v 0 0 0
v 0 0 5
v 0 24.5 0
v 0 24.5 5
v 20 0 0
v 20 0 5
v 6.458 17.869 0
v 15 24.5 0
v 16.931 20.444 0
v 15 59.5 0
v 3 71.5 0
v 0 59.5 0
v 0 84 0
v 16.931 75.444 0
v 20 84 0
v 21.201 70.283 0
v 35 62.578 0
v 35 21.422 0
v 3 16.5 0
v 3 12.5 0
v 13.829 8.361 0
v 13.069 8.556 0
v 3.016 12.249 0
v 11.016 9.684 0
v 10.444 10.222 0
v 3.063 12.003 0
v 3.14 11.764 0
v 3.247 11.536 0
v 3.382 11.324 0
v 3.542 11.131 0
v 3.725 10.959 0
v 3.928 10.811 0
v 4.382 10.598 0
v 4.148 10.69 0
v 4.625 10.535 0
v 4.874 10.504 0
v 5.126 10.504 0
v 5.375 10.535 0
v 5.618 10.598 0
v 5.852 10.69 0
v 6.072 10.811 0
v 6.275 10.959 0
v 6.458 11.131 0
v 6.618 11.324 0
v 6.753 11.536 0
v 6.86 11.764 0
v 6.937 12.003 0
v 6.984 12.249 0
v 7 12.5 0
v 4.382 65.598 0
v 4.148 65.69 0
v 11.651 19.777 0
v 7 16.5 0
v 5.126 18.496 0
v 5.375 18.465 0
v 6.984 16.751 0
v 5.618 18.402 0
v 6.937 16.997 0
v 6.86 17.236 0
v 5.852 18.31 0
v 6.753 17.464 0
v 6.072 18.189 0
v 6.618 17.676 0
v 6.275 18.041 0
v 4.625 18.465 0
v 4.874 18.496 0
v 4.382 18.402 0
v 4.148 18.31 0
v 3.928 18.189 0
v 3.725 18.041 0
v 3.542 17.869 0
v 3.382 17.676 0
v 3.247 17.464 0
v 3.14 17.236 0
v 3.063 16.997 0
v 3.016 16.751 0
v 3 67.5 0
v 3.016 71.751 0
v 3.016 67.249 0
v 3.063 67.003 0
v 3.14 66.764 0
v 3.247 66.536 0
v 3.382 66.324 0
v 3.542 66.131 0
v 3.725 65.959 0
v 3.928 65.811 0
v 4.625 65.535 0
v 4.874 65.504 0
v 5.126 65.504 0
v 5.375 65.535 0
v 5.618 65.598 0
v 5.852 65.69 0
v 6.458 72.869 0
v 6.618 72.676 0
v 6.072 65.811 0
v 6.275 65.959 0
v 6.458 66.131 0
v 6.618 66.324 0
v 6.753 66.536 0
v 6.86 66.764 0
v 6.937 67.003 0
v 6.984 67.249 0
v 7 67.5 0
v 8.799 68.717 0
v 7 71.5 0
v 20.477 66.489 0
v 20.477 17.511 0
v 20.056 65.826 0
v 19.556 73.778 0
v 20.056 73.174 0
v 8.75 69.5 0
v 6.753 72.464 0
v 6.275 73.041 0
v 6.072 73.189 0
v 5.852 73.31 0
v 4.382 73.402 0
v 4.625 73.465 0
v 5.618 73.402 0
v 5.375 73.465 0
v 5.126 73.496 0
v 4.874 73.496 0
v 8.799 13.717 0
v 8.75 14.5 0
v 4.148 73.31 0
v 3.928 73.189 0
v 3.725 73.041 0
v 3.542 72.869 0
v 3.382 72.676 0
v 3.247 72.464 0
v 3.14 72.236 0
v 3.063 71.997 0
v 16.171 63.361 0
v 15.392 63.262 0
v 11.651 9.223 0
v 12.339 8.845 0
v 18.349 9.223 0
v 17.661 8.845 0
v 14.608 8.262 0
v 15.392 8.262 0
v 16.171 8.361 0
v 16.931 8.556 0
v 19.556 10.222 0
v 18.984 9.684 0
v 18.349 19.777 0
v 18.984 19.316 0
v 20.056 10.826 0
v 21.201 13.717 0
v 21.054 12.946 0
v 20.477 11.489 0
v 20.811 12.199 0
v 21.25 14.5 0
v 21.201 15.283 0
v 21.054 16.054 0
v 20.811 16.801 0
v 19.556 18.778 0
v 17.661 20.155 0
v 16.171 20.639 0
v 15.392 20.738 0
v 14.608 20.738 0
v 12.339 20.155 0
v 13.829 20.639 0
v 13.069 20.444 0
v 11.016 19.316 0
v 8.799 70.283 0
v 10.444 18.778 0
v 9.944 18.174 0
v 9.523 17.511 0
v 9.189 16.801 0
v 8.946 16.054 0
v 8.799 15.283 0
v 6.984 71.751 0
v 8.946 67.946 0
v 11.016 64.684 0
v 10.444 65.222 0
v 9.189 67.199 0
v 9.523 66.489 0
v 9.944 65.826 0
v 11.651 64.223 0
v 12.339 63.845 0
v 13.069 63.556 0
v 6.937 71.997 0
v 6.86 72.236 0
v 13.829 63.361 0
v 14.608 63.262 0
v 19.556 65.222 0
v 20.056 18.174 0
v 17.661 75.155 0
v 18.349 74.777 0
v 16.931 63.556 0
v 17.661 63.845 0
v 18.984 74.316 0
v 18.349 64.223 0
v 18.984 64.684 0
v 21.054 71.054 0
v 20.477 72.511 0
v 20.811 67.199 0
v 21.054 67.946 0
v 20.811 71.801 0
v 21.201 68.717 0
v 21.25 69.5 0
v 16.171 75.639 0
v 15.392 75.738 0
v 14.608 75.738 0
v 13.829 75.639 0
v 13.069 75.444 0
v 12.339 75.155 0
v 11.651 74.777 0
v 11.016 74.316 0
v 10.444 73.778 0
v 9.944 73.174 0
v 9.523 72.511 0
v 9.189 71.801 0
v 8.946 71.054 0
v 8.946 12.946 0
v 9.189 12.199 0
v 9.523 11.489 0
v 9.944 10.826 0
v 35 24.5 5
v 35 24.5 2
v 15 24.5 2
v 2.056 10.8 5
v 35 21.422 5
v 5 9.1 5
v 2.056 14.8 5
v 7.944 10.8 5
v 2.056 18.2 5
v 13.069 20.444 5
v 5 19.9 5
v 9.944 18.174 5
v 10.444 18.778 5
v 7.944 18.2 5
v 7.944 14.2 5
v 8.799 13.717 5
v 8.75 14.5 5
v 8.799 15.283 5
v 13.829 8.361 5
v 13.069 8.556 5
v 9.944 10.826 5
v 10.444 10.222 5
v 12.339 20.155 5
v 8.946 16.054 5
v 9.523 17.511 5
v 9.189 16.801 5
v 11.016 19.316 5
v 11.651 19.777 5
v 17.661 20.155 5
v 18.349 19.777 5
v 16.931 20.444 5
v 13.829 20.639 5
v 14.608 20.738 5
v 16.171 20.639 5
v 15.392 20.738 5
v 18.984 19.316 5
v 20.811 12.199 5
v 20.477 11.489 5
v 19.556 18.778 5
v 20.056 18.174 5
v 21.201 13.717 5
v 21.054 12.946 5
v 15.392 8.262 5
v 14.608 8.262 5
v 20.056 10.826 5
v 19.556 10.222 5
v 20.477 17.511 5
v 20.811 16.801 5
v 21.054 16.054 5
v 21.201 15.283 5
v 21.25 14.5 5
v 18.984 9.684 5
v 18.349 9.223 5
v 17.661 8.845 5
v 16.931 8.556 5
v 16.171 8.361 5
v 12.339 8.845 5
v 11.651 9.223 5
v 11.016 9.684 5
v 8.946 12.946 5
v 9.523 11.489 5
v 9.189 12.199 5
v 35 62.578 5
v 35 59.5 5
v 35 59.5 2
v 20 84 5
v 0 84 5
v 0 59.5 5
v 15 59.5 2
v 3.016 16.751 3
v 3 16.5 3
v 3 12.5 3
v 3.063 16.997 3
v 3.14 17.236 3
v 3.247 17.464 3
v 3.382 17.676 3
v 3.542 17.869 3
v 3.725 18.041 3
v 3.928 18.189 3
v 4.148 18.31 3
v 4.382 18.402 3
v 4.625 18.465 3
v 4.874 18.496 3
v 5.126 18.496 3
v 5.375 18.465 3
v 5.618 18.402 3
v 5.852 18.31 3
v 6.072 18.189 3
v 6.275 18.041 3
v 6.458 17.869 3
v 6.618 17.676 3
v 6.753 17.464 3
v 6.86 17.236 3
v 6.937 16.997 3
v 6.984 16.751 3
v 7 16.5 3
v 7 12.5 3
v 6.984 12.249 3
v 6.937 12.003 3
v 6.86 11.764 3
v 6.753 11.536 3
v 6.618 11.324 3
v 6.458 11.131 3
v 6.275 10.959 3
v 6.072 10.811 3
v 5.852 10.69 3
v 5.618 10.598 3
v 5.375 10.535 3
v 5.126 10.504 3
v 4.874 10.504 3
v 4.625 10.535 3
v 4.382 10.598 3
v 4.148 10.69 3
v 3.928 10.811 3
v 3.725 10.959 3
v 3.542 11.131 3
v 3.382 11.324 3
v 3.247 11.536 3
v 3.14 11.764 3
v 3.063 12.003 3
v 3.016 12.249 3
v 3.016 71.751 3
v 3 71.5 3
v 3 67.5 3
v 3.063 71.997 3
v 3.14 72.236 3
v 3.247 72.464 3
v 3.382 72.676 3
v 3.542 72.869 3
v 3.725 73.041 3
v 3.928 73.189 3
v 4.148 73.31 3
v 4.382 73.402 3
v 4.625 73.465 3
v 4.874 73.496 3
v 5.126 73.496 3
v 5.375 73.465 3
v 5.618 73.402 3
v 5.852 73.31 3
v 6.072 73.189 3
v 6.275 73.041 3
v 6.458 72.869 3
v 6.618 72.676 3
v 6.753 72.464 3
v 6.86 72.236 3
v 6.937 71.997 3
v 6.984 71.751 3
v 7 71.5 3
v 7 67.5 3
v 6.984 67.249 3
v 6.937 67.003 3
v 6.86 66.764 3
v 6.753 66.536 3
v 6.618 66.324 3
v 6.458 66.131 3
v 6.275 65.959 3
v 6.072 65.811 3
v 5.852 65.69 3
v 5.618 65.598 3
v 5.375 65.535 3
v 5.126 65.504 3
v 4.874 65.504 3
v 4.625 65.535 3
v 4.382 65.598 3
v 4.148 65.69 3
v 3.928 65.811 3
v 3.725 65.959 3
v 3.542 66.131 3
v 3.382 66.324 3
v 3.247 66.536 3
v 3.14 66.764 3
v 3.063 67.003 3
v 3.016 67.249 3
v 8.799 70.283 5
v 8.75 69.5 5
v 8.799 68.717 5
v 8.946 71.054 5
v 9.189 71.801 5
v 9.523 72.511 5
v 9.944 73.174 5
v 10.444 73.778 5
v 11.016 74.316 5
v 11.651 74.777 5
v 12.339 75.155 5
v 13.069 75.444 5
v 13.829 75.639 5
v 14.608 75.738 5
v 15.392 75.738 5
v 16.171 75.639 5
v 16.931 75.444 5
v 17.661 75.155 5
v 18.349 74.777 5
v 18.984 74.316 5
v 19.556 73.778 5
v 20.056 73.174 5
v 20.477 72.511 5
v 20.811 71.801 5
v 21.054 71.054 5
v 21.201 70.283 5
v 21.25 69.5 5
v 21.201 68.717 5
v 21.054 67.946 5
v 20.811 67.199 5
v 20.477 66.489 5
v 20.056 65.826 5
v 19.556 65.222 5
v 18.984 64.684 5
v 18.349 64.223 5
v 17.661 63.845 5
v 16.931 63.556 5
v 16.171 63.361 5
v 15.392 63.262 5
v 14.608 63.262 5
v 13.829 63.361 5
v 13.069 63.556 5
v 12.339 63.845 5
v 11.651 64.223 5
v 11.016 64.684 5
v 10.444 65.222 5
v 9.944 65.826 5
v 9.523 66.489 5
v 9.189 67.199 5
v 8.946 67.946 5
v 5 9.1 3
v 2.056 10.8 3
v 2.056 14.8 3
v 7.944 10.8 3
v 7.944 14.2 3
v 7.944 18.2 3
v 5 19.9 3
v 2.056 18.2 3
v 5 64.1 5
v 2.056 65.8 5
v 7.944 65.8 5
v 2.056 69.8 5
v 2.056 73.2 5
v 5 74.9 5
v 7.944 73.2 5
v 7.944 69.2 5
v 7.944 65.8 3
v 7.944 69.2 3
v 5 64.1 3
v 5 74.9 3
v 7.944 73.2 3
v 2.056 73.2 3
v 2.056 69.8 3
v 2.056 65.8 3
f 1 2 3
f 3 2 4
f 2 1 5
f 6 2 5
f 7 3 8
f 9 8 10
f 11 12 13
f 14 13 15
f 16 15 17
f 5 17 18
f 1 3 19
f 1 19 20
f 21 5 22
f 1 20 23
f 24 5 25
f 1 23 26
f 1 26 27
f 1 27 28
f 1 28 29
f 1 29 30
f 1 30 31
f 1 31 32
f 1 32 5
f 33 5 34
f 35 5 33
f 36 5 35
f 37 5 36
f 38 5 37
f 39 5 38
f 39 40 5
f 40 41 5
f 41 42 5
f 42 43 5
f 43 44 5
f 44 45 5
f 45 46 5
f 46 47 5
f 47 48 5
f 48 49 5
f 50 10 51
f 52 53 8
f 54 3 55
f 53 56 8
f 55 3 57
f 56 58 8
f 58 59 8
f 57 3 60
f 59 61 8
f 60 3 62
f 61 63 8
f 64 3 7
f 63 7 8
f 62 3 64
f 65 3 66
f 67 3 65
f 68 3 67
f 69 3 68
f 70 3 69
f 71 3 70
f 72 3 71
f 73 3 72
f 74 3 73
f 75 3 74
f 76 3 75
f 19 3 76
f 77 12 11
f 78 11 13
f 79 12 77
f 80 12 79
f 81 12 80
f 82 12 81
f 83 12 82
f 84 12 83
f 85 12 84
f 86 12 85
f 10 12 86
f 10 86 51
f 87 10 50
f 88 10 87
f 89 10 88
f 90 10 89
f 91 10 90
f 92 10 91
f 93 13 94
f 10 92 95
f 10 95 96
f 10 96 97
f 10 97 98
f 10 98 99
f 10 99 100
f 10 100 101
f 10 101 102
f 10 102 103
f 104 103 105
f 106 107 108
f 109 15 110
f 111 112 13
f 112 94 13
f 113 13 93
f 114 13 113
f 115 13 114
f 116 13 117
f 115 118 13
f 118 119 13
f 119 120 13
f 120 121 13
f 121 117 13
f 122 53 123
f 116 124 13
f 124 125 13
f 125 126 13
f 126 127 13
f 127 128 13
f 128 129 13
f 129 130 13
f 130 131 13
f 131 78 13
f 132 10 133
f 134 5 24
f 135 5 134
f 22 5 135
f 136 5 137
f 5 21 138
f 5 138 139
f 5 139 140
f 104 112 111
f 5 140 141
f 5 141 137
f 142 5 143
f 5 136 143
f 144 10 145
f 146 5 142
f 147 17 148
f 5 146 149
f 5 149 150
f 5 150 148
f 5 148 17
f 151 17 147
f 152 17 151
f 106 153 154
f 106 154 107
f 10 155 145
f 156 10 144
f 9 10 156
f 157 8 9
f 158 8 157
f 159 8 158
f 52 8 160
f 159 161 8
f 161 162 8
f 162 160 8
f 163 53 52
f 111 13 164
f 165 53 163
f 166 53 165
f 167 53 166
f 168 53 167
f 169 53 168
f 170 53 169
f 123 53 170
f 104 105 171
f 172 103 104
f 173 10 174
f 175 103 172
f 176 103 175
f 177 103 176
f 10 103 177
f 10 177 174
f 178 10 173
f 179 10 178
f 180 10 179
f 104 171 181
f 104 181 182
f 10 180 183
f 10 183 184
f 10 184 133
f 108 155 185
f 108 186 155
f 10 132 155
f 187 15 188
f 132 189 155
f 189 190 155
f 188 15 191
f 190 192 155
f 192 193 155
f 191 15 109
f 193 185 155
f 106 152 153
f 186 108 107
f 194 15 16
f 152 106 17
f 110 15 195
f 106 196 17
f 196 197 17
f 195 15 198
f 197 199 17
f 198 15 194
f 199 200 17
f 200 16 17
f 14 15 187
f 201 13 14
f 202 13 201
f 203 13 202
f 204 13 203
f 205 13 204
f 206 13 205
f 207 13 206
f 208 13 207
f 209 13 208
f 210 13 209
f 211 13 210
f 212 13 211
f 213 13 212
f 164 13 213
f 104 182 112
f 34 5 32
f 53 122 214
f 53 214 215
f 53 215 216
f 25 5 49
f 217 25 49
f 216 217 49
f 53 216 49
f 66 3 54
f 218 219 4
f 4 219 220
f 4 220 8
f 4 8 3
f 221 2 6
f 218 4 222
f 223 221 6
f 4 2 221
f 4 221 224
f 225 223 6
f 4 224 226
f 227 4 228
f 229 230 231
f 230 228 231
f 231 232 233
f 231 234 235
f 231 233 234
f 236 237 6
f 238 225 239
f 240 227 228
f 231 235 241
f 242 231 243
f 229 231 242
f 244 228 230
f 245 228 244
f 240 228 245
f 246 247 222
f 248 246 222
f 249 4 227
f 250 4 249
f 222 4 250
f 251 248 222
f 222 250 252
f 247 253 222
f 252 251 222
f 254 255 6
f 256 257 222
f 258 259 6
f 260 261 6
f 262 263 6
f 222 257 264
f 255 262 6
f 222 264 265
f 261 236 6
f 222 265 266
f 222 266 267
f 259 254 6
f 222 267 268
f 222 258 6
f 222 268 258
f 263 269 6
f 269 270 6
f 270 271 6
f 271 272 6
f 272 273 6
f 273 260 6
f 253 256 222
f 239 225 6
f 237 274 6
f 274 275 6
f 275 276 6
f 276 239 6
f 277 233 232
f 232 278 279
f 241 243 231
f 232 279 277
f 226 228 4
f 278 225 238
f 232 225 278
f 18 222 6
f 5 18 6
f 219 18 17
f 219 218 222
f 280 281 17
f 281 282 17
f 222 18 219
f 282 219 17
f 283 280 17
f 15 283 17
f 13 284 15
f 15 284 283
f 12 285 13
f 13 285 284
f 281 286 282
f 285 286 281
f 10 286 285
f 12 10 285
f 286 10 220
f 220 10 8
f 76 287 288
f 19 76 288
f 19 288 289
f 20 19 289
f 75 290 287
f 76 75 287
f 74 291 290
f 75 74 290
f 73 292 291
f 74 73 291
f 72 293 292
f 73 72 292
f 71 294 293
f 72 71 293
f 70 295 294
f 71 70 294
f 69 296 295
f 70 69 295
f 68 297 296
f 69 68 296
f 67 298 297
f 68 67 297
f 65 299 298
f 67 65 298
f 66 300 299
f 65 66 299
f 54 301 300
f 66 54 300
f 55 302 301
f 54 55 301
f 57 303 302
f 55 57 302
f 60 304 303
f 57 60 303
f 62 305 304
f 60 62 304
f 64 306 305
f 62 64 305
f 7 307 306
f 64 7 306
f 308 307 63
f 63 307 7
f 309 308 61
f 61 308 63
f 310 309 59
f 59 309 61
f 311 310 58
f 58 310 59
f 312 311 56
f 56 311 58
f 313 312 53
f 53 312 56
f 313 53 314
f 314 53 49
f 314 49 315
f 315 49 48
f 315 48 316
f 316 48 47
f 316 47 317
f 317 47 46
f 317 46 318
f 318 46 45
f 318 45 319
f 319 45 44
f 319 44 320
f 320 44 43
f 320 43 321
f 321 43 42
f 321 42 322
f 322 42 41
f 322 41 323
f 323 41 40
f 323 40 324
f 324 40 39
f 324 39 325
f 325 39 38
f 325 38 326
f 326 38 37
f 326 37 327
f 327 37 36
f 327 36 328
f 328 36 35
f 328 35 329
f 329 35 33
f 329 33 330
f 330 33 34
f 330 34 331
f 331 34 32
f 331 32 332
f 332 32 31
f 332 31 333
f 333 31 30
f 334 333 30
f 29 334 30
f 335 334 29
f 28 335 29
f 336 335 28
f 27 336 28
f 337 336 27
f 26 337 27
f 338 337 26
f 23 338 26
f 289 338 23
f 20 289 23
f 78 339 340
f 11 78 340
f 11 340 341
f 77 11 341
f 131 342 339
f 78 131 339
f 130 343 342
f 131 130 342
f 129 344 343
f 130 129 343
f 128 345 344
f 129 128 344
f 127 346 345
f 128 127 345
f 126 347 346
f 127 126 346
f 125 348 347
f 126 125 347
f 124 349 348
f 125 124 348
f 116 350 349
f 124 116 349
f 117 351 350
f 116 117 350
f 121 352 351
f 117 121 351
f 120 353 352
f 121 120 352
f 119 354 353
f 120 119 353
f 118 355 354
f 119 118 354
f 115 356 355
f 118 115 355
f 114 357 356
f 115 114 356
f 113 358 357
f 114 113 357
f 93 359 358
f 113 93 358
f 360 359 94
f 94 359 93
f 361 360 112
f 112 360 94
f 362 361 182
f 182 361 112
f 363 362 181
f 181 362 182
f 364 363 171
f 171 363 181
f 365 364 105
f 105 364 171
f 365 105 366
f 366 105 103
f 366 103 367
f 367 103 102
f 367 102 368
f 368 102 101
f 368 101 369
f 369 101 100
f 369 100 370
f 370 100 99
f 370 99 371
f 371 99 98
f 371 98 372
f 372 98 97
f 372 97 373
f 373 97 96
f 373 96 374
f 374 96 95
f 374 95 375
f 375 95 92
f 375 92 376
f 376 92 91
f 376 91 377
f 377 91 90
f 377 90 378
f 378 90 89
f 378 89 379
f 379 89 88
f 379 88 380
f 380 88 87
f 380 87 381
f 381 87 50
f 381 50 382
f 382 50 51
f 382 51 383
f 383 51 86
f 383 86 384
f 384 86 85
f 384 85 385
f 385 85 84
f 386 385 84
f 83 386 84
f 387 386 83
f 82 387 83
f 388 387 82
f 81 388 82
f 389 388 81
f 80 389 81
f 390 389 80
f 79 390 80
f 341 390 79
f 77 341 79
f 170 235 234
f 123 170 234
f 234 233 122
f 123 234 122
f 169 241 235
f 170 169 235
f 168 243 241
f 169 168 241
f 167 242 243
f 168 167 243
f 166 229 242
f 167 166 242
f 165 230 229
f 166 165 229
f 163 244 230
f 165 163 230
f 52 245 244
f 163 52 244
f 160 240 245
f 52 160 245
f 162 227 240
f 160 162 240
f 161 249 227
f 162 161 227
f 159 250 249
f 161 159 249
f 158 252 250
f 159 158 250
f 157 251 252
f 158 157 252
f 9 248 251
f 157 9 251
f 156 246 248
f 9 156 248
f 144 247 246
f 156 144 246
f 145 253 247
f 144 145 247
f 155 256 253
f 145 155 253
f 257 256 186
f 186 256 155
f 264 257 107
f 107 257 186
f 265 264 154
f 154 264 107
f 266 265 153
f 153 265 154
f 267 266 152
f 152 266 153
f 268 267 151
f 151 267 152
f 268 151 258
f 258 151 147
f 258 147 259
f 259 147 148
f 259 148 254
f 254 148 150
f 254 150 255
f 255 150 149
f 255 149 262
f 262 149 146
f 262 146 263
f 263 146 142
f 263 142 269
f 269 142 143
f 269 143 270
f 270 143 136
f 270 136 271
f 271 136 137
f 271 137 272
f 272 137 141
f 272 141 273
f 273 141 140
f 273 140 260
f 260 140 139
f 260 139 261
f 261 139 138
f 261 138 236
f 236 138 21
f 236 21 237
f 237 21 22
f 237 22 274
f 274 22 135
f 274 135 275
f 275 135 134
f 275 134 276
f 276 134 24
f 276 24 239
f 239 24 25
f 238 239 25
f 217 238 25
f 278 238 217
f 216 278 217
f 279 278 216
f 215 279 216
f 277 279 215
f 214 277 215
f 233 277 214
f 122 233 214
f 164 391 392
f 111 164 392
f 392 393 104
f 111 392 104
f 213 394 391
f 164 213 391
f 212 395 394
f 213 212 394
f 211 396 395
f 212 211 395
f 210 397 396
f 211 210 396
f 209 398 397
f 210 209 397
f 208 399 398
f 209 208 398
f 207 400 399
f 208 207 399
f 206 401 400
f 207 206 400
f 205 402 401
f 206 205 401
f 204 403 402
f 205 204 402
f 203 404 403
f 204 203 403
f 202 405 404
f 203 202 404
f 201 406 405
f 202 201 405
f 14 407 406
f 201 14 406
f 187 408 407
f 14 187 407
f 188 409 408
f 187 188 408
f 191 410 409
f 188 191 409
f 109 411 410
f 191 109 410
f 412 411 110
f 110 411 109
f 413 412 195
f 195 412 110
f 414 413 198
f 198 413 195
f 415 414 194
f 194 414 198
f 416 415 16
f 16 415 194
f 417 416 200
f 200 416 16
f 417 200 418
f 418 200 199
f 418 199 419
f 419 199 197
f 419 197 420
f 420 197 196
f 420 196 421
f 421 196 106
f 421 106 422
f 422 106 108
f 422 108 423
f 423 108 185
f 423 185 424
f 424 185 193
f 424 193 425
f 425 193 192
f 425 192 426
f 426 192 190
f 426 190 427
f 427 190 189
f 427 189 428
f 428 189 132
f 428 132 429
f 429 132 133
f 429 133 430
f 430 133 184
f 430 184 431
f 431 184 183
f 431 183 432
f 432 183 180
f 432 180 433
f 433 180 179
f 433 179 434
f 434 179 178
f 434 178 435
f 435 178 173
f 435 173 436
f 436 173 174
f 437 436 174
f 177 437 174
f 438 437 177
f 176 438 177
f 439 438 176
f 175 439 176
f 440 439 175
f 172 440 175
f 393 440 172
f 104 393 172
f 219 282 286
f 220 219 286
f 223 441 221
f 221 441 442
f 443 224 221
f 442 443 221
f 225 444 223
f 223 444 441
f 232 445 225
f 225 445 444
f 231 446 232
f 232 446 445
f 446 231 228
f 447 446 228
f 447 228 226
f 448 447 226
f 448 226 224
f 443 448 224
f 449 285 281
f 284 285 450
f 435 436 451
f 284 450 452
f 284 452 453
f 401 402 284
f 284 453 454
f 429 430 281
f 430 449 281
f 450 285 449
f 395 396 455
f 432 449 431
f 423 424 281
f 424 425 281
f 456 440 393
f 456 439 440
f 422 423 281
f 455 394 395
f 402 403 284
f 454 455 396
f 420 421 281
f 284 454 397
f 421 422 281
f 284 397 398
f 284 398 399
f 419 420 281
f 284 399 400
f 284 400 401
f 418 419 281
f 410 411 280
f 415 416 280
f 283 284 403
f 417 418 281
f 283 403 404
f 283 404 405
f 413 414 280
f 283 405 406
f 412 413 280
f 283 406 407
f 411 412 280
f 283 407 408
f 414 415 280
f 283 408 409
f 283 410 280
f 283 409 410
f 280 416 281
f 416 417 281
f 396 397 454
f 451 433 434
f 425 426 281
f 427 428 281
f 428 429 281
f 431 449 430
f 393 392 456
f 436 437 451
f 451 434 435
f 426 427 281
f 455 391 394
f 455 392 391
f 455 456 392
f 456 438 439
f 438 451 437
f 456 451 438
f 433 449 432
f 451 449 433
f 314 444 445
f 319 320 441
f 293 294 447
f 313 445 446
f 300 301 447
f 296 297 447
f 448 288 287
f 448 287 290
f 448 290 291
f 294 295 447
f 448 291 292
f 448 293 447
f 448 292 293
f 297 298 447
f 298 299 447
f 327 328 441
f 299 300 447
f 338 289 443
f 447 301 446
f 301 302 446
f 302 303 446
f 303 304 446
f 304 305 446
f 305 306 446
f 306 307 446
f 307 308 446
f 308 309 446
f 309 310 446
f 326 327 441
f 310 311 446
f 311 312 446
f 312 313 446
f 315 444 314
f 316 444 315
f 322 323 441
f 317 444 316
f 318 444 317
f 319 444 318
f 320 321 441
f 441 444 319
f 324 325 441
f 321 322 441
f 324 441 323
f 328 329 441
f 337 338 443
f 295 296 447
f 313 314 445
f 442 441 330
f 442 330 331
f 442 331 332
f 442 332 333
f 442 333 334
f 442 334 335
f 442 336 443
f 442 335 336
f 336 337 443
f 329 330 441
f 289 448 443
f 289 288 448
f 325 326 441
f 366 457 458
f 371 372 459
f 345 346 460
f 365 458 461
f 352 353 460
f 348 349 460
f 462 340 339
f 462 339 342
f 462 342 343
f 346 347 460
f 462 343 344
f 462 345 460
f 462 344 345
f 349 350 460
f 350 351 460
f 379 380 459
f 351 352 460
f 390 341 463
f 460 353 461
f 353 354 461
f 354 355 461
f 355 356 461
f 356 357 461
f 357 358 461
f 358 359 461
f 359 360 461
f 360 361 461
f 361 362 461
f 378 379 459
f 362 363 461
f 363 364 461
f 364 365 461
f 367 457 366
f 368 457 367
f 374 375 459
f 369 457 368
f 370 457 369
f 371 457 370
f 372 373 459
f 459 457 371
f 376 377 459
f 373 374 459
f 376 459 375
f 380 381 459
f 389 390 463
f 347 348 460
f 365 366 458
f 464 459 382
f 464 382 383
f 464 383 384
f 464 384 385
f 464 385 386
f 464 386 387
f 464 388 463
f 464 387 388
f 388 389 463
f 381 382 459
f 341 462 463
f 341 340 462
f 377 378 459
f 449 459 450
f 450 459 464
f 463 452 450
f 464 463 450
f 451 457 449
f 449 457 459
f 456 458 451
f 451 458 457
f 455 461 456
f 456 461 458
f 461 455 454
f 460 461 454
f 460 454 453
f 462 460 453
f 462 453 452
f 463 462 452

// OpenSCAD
longueur=84;
largeur=35;
trou_m3=2;
h1=2;
h2=5;
ecart=55;
r_tube=6.25;
pos_tube=15;
r_ecrou_m3=3.4;

module base_z(){
	difference(){
		cube([largeur,longueur,h2]);
		translate([-5,longueur/2-largeur/2,h1]){cube([largeur+10,largeur,h2]);}
		translate([-5,longueur/2-largeur/2,-5]){cube([20,largeur,20]);}

		//trous pour tubes
		translate([pos_tube,14.5,-5]){cylinder(h=20, r=r_tube, $fn=50);}
		translate([pos_tube,14.5+ecart,-5]){cylinder(h=20, r=r_tube, $fn=50);}

		//trous pour vissage
		hull(){
		translate([pos_tube-10,14.5-2,-5]){cylinder(h=20, r=trou_m3, $fn=50);}
		translate([pos_tube-10,14.5+2,-5]){cylinder(h=20, r=trou_m3, $fn=50);}
		}

		//empreinte écrous de serrage
		hull(){
		translate([pos_tube-10,14.5-2,3]){rotate([0,0,30])cylinder(h=20, r=r_ecrou_m3, $fn=6);}
		translate([pos_tube-10,14.5+2,3]){rotate([0,0,30])cylinder(h=20, r=r_ecrou_m3, $fn=6);}
		}

		hull(){
		translate([pos_tube-10,14.5+ecart-2,-5]){cylinder(h=20, r=trou_m3, $fn=50);}
		translate([pos_tube-10,14.5+ecart+2,-5]){cylinder(h=20, r=trou_m3, $fn=50);}
		}

		//empreinte écrous de serrage
		hull(){
		translate([pos_tube-10,14.5+ecart-2,3]){rotate([0,0,30])cylinder(h=20, r=r_ecrou_m3, $fn=6);}
		translate([pos_tube-10,14.5+ecart+2,3]){rotate([0,0,30])cylinder(h=20, r=r_ecrou_m3, $fn=6);}
		}

		//cassage des coins
		translate([20,0,-5]){rotate([0,0,-35])cube([30,30,20]);}
		translate([20,longueur,-5]){rotate([0,0,-55])cube([30,30,20]);}
	}
}

base_z();
